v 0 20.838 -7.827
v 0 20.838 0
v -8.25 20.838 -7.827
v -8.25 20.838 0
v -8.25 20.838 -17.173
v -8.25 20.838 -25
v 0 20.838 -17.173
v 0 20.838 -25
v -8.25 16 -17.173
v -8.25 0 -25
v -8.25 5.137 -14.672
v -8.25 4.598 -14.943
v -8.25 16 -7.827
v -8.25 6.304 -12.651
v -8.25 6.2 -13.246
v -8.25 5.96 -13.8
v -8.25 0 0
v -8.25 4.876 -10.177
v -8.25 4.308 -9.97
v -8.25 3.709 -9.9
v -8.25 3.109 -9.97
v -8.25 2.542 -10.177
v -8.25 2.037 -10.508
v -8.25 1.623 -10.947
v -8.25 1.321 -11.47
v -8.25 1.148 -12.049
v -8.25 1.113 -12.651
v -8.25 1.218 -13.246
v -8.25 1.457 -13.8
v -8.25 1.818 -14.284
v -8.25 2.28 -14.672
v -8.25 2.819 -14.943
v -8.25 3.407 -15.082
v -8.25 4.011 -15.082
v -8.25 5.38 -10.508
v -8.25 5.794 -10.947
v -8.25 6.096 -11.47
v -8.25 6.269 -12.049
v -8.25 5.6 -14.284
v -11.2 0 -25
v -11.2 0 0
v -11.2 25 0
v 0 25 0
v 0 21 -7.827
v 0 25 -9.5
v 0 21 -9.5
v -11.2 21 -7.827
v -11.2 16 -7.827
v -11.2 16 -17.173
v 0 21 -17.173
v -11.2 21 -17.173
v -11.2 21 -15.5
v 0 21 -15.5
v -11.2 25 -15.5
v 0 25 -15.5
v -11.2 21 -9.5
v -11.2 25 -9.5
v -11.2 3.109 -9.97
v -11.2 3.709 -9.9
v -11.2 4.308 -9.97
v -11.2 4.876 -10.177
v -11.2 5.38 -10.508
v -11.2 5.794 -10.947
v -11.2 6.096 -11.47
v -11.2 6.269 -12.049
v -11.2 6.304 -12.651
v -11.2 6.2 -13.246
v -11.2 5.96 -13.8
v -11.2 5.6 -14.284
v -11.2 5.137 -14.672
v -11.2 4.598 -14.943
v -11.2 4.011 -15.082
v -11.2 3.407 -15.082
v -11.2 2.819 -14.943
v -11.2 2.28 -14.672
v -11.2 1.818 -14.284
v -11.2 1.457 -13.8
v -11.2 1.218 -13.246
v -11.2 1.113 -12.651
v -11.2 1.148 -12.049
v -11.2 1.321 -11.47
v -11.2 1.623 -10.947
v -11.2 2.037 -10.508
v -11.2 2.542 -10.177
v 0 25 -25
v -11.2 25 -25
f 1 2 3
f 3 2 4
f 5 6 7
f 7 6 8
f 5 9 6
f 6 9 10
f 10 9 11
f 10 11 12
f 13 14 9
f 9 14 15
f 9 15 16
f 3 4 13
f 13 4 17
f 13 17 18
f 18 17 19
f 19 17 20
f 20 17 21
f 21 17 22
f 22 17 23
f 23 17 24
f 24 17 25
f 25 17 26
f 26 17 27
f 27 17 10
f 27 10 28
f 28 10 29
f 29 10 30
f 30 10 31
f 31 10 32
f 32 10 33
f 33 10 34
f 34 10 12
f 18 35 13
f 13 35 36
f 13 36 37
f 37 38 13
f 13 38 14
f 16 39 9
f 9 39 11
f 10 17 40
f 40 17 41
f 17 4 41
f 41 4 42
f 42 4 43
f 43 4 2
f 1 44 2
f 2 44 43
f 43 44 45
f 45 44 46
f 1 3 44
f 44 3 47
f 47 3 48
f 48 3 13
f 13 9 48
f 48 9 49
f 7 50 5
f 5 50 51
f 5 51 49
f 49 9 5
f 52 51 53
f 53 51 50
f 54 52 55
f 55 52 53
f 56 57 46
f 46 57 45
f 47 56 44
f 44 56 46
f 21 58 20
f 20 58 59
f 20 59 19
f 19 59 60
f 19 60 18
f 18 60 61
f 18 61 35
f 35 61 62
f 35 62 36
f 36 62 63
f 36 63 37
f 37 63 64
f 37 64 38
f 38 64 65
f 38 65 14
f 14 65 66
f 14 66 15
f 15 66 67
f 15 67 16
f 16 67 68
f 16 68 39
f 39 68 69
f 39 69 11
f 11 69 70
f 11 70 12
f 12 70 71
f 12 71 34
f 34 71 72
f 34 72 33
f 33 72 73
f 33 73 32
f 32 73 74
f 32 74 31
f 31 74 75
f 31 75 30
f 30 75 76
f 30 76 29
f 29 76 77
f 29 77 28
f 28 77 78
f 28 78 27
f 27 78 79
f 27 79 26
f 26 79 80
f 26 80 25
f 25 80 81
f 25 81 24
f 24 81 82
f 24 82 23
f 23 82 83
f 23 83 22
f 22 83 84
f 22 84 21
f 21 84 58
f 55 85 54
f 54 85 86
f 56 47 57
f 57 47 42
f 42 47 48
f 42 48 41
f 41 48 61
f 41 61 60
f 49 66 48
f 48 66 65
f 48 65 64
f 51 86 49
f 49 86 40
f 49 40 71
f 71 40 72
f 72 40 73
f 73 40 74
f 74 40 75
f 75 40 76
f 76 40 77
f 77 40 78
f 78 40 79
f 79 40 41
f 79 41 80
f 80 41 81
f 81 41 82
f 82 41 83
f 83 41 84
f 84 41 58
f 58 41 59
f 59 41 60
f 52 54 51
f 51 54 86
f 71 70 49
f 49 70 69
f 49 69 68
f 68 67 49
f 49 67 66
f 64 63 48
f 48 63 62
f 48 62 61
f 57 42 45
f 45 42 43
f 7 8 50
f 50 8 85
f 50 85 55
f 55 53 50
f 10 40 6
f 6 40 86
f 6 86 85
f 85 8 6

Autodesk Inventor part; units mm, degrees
ref_plane "YZ Plane" through (0, 0, 0) normal (1, 0, 0) x (0, 1, 0)
ref_plane "XZ Plane" through (0, 0, 0) normal (0, 1, 0) x (-1, 0, 0)
ref_plane "XY Plane" through (0, 0, 0) normal (0, 0, 1) x (1, 0, 0)
sketch "Sketch1" plane through (0, 0, 0) normal (0, 1, 0) x (-1, 0, 0)
  line L0 (0, 0) -> (3, 0)
  line L1 (3, 0) -> (3, -25)
  line L2 (3, -25) -> (0, -25)
  line L3 (0, -25) -> (0, 0)
  line L4 (8.2, 0) -> (11.2, 0)
  line L5 (11.2, 0) -> (11.2, -25)
  line L6 (11.2, -25) -> (8.2, -25)
  line L7 (8.2, -25) -> (8.2, 0)
  point P0 (0, -12.5)
  point P1 (8.2, -12.5)
  dimension "d0" = 25
  dimension "d1" = 3
  dimension "d2" = 25
  dimension "d3" = 3
  dimension "d4" = 5.2
extrude "Extrusion1" add sketch "Sketch1" along normal blind 15
sketch "Sketch2" plane through (0, 15, 0) normal (0, 1, 0) x (1, 0, 0)
  line L0 (-11.2, 25) -> (-11.2, 0) projected
  line L1 (-11.2, 0) -> (0, 0)
  line L2 (0, 0) -> (0, 25)
  line L3 (0, 25) -> (-11.2, 25)
  line L4 (-11.2, 25) -> (-11.2, 0)
  point P0 (0, 0)
extrude "Extrusion2" add sketch "Sketch2" along normal blind 10
sketch "Sketch3" plane through (0, 0, 0) normal (1, 0, 0) x (0, 0, -1)
  line L0 (0, 25) -> (25, 25) projected
  line L1 (12.5, 25) -> (12.5, 0.2306)
  line L2 (9.5, 25) -> (9.5, 21)
  line L3 (9.5, 21) -> (7.8272, 21)
  line L4 (7.8272, 21) -> (7.8272, 16)
  line L5 (7.8272, 16) -> (12.5, 16)
  line L6 (15.5, 25) -> (15.5, 21)
  line L7 (15.5, 21) -> (17.1728, 21)
  line L8 (17.1728, 21) -> (17.1728, 16)
  line L9 (17.1728, 16) -> (12.5, 16)
  line L10 (9.5, 25) -> (15.5, 25)
  circle A0 centre (12.5, 3.7087) radius 2.6
  point P0 (0, 0)
  point P1 (8.6636, 21)
  dimension "d9" = 6
  dimension "d10" = 5
  dimension "d11" = 8
  dimension "d14" = 5.2
extrude "Extrusion3" cut sketch "Sketch3" against normal blind 20
sketch "Sketch4" plane through (0, 0, 0) normal (1, 0, 0) x (0, 0, -1)
  line L0 (0, 0) -> (25, 0) projected
  line L1 (25, 0) -> (25, 25) projected
  line L2 (0, 0) -> (25, 0)
  line L3 (25, 0) -> (25, 20.8379)
  line L4 (25, 20.8379) -> (0, 20.8379)
  line L5 (0, 20.8379) -> (0, 0)
extrude "Extrusion4" cut sketch "Sketch4" against normal blind 8.25
properties part number "RollXAxisEnd" material "Thermoplastic Resin"
